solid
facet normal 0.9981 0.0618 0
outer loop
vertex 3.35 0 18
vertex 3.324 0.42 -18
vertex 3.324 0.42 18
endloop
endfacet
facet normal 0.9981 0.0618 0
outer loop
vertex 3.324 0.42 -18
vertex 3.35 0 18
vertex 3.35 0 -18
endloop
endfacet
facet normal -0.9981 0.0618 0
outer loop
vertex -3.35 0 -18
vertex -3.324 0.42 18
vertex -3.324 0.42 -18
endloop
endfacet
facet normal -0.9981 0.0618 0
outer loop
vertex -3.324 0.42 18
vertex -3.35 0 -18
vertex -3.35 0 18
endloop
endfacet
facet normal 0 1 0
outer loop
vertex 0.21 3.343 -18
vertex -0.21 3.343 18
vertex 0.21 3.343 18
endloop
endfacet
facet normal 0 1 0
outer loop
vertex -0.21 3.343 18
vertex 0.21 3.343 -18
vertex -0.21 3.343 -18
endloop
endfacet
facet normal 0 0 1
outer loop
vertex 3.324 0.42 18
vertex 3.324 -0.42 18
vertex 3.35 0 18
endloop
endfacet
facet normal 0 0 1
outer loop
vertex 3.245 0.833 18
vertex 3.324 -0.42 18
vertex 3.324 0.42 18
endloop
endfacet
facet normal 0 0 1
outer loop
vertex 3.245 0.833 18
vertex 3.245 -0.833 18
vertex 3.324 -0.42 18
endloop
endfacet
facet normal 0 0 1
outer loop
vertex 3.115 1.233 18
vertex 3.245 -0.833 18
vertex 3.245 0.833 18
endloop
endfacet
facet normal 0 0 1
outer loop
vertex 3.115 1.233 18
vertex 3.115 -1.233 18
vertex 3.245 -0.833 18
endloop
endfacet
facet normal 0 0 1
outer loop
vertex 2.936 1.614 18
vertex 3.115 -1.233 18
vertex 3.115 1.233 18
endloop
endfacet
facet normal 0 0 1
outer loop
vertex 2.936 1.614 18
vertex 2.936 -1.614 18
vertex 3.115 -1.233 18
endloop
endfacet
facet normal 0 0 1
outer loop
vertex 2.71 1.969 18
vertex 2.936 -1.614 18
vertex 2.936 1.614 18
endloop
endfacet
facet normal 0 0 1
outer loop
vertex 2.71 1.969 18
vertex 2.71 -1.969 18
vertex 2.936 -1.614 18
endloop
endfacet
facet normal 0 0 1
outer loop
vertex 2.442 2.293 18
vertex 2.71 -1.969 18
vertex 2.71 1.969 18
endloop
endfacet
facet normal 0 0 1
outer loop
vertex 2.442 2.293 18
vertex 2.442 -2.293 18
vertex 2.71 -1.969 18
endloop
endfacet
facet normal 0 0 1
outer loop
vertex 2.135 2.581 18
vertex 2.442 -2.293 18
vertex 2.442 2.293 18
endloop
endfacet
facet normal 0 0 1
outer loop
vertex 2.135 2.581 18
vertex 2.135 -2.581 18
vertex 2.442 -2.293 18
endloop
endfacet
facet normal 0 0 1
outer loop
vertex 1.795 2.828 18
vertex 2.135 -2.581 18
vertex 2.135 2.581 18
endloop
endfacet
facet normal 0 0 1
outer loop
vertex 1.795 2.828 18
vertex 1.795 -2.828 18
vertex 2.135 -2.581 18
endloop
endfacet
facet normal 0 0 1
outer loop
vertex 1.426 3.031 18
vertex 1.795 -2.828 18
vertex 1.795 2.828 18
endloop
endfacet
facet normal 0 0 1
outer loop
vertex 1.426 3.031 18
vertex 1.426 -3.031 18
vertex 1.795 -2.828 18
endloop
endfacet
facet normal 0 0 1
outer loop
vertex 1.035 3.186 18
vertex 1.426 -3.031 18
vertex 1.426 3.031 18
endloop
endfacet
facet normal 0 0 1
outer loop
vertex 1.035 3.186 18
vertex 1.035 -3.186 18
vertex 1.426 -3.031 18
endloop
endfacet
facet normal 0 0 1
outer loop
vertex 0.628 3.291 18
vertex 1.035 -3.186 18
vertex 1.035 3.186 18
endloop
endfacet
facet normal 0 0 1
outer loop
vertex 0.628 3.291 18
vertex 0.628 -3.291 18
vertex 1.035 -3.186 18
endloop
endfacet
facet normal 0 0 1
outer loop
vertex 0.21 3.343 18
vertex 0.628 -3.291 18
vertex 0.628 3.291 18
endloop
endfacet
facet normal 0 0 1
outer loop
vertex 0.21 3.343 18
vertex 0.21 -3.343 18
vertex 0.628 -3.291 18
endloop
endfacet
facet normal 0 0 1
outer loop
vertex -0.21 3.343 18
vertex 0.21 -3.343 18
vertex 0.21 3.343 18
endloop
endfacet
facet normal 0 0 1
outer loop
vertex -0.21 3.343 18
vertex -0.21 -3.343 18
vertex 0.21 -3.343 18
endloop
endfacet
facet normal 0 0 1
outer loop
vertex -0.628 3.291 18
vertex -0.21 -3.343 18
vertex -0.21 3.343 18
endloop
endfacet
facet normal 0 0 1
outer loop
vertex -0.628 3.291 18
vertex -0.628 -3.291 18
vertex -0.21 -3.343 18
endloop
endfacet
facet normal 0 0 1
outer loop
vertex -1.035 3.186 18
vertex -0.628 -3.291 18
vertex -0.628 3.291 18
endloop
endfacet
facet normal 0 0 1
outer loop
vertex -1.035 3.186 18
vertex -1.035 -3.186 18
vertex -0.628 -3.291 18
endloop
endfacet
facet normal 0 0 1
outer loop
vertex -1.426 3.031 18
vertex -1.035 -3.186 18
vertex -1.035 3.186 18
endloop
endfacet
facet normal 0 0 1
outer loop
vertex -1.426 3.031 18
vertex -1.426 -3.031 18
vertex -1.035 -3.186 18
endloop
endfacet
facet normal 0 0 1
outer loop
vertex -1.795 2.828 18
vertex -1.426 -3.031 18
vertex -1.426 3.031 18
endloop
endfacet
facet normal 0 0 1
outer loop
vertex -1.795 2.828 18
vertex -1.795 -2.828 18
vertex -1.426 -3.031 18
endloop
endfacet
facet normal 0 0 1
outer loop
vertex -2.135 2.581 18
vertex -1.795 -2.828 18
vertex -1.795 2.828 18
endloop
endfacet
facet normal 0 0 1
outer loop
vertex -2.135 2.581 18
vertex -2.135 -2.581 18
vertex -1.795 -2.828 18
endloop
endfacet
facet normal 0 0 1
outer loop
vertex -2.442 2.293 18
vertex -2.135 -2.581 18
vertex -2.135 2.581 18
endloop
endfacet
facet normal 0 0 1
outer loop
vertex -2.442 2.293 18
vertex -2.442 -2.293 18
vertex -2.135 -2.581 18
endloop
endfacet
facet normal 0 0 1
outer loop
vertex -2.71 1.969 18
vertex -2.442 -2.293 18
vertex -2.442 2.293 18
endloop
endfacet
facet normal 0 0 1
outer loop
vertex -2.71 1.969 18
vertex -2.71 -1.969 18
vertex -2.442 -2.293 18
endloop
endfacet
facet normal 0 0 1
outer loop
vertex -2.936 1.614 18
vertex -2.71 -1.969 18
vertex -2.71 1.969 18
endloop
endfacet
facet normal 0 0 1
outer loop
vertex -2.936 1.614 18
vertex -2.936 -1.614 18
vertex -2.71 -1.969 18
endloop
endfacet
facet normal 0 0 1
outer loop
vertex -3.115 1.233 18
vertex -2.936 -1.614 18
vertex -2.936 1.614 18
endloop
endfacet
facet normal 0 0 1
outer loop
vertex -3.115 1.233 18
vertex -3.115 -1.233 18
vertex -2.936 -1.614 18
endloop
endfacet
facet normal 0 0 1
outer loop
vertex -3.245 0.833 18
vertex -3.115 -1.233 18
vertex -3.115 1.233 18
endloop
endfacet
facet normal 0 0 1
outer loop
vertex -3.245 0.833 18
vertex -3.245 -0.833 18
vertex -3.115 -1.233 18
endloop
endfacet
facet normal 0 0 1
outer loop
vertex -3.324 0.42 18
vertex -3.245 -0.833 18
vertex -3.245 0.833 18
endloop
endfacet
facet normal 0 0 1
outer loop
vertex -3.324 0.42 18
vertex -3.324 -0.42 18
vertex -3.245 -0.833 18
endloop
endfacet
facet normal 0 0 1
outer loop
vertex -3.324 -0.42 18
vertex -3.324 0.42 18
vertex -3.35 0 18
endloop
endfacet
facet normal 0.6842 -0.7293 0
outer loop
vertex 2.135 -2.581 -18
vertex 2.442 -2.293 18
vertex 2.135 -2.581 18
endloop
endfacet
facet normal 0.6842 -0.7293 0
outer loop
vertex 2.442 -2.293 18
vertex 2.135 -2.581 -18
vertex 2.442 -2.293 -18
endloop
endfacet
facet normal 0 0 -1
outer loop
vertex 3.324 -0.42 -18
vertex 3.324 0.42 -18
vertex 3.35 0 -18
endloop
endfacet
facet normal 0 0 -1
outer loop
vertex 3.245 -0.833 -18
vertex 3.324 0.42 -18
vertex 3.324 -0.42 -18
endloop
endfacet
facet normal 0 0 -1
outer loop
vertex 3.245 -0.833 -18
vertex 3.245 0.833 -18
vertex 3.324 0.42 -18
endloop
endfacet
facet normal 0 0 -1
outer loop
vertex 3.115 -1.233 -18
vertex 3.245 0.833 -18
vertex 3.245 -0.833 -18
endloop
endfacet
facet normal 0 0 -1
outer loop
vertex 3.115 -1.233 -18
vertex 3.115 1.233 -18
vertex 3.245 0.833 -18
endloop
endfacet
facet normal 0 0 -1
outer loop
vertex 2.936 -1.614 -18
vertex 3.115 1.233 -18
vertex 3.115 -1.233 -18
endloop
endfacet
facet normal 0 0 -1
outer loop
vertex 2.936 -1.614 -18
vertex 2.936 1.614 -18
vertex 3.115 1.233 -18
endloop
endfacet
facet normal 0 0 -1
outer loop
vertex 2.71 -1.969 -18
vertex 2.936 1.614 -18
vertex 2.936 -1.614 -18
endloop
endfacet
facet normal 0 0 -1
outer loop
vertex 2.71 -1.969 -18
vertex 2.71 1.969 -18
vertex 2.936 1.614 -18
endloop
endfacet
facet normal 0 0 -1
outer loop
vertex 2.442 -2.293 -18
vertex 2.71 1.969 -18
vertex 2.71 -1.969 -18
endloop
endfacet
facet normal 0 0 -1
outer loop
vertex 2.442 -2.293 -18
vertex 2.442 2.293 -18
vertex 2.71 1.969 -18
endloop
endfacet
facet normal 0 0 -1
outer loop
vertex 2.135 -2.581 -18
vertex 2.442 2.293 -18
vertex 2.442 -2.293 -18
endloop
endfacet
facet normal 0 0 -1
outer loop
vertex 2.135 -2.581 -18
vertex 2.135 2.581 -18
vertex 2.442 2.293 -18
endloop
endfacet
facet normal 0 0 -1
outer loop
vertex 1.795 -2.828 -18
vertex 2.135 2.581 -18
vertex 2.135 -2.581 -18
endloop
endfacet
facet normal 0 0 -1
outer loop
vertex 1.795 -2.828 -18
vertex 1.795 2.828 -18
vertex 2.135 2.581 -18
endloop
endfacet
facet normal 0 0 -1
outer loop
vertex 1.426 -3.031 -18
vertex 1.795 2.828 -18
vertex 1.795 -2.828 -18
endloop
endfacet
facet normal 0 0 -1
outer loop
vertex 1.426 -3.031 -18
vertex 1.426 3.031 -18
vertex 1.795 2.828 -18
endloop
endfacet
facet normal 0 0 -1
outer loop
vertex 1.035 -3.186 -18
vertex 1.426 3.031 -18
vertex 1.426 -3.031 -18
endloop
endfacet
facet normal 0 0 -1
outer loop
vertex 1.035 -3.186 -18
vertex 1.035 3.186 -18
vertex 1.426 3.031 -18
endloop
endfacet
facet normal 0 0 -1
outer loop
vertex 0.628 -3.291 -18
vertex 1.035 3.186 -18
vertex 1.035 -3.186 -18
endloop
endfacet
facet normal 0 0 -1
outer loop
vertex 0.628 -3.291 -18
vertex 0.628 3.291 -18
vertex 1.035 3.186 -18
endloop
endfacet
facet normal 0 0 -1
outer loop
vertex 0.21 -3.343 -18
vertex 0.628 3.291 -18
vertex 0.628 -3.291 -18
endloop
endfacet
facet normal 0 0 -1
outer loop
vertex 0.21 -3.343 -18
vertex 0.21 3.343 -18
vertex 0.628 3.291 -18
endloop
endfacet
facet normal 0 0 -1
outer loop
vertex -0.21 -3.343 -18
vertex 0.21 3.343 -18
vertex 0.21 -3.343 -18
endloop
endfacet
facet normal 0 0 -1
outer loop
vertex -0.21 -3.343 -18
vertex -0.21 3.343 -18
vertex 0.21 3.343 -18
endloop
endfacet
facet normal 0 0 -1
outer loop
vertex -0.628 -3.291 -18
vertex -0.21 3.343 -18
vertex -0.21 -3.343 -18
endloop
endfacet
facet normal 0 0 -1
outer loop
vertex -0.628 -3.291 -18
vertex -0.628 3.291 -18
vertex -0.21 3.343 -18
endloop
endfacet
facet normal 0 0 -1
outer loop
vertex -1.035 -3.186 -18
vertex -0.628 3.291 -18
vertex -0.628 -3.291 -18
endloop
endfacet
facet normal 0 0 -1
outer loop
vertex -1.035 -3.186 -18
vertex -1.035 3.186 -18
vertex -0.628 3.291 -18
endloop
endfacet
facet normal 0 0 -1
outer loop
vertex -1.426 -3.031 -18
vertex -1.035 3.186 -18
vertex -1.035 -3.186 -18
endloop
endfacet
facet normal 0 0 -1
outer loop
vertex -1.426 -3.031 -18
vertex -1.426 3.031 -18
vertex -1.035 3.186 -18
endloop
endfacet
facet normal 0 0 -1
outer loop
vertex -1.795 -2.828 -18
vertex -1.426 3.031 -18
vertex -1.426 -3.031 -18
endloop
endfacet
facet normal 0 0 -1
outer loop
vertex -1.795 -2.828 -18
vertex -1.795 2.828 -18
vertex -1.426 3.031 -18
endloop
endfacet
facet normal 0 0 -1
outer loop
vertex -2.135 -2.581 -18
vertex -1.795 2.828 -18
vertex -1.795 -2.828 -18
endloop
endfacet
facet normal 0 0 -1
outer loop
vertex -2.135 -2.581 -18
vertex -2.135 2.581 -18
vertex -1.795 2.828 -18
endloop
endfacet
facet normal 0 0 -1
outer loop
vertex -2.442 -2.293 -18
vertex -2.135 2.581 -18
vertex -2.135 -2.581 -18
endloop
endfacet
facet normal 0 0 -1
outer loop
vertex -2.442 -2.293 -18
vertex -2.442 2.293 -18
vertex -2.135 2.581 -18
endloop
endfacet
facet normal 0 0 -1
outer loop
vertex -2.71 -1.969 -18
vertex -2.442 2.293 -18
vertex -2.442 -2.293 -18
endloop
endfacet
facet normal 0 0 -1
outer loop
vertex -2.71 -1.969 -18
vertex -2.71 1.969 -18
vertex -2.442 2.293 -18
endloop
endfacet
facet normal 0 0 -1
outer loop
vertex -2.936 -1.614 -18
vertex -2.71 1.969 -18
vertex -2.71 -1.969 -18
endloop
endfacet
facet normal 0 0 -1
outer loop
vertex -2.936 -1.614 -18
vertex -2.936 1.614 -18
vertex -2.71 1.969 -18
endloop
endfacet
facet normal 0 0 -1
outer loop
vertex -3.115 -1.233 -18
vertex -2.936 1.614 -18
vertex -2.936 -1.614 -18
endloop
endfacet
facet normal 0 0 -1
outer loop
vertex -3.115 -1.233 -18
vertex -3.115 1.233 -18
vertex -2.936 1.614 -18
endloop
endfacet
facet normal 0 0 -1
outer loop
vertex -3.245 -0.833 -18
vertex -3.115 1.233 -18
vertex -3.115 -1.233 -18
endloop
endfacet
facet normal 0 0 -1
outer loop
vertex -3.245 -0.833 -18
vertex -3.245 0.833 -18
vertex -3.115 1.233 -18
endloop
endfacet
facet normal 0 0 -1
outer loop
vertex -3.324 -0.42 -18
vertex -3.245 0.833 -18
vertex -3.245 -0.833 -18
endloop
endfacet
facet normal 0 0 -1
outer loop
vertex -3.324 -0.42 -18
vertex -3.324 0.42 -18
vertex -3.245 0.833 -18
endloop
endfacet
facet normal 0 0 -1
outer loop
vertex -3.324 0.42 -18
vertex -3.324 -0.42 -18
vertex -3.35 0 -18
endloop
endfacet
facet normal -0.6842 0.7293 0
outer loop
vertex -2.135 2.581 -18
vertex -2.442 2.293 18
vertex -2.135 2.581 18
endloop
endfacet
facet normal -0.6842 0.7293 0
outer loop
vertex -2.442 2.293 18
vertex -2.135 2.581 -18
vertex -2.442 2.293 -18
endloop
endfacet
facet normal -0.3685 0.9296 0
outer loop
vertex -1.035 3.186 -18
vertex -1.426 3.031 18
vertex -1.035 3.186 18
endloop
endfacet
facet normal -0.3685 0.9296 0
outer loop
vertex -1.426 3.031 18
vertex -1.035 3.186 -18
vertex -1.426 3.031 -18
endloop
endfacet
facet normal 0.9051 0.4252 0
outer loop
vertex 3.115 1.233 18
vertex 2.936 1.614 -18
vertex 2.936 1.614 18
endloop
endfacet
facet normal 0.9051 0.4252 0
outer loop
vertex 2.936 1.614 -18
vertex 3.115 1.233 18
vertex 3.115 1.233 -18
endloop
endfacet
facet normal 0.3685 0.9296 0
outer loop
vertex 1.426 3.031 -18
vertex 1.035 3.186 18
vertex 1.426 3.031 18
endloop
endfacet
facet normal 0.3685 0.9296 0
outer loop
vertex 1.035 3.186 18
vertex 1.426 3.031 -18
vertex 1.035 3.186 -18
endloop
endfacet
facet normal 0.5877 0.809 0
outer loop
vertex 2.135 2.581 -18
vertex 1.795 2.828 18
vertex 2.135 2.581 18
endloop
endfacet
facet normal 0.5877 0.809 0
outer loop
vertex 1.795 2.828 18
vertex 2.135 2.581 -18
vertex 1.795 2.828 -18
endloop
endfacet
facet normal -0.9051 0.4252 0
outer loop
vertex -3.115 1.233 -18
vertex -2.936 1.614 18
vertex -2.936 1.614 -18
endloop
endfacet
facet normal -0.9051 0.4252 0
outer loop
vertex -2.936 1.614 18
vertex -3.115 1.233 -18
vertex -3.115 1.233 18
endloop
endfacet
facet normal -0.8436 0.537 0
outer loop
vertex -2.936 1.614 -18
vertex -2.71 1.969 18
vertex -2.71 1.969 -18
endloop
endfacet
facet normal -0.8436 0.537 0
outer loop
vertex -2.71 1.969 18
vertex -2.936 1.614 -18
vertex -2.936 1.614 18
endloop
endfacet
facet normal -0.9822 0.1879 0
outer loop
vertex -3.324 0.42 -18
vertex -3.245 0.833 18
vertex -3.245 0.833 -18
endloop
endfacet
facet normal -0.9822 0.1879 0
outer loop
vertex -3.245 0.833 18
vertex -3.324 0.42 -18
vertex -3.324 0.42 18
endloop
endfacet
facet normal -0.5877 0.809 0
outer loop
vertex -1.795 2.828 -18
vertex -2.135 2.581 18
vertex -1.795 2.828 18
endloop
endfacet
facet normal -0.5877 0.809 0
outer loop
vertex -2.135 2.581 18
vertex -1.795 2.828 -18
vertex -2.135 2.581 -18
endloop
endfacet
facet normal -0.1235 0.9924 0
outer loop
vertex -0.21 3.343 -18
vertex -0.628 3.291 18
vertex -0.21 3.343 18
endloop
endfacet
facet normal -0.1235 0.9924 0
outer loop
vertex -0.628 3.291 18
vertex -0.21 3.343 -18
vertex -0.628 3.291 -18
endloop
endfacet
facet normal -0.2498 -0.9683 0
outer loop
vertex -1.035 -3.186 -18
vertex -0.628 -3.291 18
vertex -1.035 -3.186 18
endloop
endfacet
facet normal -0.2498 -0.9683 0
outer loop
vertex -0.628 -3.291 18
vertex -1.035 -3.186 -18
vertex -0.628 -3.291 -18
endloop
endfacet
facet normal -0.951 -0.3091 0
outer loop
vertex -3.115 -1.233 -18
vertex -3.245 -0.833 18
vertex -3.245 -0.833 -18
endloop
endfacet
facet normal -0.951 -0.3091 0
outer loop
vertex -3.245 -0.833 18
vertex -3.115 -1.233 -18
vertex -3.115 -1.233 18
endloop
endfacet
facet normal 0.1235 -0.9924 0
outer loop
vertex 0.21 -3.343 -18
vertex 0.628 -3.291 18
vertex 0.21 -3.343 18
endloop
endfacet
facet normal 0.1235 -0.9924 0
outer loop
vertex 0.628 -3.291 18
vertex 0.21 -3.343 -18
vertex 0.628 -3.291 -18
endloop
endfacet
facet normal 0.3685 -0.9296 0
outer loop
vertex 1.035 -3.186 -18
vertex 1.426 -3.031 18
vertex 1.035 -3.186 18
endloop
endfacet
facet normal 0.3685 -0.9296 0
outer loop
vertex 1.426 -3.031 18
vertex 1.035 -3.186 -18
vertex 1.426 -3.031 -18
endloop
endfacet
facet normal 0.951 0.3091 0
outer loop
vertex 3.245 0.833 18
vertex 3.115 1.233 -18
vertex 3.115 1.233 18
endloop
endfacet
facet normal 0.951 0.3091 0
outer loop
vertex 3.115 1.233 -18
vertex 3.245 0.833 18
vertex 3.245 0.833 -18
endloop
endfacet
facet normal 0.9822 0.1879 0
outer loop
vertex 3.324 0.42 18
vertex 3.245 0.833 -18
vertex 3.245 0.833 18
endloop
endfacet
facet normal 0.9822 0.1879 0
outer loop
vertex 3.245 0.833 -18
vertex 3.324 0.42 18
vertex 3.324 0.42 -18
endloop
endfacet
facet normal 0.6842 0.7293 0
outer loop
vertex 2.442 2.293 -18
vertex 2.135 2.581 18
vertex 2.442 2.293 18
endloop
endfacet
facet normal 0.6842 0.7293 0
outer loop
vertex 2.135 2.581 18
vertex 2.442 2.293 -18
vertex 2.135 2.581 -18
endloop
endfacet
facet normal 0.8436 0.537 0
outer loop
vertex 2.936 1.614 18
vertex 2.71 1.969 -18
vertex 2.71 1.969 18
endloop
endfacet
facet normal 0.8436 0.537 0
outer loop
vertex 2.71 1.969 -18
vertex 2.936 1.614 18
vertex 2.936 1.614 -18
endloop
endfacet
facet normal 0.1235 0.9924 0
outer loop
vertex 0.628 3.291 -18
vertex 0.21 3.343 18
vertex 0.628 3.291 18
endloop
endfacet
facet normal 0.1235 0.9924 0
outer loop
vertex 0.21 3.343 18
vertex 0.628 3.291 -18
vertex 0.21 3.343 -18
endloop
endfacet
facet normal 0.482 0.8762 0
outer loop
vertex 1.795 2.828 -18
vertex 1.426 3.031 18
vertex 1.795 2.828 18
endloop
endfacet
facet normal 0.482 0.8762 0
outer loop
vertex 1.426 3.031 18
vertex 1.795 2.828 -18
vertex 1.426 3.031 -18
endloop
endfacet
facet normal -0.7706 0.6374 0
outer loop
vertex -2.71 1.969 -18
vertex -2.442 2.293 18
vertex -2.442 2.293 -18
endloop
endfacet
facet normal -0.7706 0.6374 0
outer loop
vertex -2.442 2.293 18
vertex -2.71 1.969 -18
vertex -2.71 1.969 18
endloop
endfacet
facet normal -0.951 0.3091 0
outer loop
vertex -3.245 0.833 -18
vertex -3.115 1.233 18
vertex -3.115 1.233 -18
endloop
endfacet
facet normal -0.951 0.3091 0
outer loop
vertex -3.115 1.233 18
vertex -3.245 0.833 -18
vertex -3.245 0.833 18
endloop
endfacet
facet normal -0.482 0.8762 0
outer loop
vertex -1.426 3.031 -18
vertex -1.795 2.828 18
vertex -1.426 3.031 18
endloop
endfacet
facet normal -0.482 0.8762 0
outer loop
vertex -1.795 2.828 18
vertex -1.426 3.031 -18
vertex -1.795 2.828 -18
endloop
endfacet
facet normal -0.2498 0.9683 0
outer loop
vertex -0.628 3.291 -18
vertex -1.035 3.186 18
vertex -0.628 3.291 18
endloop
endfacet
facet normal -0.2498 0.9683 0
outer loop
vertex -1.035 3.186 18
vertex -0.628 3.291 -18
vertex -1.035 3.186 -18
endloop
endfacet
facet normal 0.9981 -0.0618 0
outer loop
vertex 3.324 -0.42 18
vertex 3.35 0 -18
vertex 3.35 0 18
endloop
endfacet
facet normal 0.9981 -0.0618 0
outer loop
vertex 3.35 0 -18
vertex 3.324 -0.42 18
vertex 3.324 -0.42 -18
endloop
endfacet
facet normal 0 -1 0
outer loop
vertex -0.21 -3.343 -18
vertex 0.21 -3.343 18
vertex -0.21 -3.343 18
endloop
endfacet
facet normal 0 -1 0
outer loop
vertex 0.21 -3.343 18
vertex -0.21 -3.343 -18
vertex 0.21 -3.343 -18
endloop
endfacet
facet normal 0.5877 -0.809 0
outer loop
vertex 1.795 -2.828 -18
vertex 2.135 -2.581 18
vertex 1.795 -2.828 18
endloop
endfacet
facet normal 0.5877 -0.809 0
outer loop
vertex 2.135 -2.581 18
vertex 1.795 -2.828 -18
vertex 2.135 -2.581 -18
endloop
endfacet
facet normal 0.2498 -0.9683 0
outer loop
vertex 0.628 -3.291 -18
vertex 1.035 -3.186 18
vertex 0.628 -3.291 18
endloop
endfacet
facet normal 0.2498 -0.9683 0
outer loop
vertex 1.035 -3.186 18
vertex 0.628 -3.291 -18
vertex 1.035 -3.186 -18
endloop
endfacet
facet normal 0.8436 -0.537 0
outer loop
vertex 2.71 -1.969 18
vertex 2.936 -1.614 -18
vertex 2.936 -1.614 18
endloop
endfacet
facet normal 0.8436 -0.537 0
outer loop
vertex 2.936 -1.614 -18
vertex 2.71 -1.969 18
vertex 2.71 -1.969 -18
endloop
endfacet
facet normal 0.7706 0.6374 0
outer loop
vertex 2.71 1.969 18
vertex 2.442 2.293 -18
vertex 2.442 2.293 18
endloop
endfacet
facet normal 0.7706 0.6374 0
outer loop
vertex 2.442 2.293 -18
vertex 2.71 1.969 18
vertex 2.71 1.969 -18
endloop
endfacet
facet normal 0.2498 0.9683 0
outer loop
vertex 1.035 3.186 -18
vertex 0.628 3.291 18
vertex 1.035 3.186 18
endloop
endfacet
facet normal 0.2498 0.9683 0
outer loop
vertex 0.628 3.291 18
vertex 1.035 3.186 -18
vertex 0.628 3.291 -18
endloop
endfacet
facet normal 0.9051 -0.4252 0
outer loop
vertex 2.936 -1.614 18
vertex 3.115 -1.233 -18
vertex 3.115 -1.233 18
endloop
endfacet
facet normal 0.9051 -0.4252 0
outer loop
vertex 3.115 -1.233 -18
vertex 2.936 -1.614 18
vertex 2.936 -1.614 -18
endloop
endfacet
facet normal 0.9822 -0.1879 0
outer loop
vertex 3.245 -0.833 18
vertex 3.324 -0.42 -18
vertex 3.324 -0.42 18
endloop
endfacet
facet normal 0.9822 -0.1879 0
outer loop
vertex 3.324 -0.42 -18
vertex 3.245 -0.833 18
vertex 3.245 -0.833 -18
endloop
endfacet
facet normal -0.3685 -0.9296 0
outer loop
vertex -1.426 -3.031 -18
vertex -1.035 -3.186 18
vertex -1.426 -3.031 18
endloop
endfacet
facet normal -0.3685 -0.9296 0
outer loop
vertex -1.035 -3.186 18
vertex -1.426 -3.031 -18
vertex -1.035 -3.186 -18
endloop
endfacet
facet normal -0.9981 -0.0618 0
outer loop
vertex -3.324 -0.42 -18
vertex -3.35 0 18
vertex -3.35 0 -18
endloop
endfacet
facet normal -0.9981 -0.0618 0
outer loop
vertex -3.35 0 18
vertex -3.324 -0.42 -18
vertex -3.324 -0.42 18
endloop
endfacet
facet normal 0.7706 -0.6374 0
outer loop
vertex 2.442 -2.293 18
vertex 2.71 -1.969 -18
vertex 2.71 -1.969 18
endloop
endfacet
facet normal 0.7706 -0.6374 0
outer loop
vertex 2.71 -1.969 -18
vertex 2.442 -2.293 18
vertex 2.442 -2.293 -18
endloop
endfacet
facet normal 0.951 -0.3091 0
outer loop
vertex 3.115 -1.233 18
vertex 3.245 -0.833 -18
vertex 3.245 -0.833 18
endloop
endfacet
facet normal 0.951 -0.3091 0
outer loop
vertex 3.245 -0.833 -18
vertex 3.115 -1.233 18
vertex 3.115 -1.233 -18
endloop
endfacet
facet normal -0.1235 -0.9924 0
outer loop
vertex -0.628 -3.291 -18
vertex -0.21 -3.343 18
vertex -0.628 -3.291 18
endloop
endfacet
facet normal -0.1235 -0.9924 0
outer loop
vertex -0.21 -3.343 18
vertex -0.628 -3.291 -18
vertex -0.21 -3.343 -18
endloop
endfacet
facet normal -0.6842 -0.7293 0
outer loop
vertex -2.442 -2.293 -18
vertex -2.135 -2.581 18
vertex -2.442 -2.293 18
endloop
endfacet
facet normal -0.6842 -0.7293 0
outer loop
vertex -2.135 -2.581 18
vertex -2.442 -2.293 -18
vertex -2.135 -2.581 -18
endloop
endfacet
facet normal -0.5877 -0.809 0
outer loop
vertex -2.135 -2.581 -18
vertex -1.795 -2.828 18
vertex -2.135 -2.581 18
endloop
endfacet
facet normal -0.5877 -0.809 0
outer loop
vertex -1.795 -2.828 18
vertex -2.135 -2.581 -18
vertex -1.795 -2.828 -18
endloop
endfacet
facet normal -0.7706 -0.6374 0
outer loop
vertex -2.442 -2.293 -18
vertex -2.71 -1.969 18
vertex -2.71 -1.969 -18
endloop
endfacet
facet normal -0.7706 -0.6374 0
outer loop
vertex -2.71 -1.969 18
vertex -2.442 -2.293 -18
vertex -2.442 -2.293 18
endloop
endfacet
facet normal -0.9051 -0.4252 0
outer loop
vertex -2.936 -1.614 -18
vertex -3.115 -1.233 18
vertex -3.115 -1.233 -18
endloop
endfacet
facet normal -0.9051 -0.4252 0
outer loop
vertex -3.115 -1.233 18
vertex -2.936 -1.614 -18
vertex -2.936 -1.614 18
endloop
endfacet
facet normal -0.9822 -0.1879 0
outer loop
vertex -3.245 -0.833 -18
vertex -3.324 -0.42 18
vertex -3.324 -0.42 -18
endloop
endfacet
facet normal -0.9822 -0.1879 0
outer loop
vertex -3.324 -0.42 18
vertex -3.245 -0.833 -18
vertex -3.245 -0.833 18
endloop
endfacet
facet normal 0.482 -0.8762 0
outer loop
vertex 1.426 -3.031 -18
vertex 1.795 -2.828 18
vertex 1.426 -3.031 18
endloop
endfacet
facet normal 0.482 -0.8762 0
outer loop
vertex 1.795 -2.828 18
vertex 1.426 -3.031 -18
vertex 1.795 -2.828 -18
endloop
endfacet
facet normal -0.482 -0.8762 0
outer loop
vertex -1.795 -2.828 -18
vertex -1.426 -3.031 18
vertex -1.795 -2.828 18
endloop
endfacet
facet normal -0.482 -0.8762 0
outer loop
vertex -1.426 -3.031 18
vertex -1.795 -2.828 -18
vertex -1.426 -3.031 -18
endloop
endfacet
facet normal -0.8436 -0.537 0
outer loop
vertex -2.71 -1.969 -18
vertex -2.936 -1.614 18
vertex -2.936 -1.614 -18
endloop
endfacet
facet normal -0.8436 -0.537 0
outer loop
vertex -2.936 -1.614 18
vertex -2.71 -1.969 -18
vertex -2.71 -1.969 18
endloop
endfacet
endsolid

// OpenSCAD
$fn = 50;


difference() {
	union() {
		translate(v = [0, 0, -18.0000000000]) {
			cylinder(h = 36, r = 3.3500000000);
		}
	}
	union() {
		translate(v = [0, 0, -100.0000000000]) {
			cylinder(h = 200, r = 0);
		}
	}
}
